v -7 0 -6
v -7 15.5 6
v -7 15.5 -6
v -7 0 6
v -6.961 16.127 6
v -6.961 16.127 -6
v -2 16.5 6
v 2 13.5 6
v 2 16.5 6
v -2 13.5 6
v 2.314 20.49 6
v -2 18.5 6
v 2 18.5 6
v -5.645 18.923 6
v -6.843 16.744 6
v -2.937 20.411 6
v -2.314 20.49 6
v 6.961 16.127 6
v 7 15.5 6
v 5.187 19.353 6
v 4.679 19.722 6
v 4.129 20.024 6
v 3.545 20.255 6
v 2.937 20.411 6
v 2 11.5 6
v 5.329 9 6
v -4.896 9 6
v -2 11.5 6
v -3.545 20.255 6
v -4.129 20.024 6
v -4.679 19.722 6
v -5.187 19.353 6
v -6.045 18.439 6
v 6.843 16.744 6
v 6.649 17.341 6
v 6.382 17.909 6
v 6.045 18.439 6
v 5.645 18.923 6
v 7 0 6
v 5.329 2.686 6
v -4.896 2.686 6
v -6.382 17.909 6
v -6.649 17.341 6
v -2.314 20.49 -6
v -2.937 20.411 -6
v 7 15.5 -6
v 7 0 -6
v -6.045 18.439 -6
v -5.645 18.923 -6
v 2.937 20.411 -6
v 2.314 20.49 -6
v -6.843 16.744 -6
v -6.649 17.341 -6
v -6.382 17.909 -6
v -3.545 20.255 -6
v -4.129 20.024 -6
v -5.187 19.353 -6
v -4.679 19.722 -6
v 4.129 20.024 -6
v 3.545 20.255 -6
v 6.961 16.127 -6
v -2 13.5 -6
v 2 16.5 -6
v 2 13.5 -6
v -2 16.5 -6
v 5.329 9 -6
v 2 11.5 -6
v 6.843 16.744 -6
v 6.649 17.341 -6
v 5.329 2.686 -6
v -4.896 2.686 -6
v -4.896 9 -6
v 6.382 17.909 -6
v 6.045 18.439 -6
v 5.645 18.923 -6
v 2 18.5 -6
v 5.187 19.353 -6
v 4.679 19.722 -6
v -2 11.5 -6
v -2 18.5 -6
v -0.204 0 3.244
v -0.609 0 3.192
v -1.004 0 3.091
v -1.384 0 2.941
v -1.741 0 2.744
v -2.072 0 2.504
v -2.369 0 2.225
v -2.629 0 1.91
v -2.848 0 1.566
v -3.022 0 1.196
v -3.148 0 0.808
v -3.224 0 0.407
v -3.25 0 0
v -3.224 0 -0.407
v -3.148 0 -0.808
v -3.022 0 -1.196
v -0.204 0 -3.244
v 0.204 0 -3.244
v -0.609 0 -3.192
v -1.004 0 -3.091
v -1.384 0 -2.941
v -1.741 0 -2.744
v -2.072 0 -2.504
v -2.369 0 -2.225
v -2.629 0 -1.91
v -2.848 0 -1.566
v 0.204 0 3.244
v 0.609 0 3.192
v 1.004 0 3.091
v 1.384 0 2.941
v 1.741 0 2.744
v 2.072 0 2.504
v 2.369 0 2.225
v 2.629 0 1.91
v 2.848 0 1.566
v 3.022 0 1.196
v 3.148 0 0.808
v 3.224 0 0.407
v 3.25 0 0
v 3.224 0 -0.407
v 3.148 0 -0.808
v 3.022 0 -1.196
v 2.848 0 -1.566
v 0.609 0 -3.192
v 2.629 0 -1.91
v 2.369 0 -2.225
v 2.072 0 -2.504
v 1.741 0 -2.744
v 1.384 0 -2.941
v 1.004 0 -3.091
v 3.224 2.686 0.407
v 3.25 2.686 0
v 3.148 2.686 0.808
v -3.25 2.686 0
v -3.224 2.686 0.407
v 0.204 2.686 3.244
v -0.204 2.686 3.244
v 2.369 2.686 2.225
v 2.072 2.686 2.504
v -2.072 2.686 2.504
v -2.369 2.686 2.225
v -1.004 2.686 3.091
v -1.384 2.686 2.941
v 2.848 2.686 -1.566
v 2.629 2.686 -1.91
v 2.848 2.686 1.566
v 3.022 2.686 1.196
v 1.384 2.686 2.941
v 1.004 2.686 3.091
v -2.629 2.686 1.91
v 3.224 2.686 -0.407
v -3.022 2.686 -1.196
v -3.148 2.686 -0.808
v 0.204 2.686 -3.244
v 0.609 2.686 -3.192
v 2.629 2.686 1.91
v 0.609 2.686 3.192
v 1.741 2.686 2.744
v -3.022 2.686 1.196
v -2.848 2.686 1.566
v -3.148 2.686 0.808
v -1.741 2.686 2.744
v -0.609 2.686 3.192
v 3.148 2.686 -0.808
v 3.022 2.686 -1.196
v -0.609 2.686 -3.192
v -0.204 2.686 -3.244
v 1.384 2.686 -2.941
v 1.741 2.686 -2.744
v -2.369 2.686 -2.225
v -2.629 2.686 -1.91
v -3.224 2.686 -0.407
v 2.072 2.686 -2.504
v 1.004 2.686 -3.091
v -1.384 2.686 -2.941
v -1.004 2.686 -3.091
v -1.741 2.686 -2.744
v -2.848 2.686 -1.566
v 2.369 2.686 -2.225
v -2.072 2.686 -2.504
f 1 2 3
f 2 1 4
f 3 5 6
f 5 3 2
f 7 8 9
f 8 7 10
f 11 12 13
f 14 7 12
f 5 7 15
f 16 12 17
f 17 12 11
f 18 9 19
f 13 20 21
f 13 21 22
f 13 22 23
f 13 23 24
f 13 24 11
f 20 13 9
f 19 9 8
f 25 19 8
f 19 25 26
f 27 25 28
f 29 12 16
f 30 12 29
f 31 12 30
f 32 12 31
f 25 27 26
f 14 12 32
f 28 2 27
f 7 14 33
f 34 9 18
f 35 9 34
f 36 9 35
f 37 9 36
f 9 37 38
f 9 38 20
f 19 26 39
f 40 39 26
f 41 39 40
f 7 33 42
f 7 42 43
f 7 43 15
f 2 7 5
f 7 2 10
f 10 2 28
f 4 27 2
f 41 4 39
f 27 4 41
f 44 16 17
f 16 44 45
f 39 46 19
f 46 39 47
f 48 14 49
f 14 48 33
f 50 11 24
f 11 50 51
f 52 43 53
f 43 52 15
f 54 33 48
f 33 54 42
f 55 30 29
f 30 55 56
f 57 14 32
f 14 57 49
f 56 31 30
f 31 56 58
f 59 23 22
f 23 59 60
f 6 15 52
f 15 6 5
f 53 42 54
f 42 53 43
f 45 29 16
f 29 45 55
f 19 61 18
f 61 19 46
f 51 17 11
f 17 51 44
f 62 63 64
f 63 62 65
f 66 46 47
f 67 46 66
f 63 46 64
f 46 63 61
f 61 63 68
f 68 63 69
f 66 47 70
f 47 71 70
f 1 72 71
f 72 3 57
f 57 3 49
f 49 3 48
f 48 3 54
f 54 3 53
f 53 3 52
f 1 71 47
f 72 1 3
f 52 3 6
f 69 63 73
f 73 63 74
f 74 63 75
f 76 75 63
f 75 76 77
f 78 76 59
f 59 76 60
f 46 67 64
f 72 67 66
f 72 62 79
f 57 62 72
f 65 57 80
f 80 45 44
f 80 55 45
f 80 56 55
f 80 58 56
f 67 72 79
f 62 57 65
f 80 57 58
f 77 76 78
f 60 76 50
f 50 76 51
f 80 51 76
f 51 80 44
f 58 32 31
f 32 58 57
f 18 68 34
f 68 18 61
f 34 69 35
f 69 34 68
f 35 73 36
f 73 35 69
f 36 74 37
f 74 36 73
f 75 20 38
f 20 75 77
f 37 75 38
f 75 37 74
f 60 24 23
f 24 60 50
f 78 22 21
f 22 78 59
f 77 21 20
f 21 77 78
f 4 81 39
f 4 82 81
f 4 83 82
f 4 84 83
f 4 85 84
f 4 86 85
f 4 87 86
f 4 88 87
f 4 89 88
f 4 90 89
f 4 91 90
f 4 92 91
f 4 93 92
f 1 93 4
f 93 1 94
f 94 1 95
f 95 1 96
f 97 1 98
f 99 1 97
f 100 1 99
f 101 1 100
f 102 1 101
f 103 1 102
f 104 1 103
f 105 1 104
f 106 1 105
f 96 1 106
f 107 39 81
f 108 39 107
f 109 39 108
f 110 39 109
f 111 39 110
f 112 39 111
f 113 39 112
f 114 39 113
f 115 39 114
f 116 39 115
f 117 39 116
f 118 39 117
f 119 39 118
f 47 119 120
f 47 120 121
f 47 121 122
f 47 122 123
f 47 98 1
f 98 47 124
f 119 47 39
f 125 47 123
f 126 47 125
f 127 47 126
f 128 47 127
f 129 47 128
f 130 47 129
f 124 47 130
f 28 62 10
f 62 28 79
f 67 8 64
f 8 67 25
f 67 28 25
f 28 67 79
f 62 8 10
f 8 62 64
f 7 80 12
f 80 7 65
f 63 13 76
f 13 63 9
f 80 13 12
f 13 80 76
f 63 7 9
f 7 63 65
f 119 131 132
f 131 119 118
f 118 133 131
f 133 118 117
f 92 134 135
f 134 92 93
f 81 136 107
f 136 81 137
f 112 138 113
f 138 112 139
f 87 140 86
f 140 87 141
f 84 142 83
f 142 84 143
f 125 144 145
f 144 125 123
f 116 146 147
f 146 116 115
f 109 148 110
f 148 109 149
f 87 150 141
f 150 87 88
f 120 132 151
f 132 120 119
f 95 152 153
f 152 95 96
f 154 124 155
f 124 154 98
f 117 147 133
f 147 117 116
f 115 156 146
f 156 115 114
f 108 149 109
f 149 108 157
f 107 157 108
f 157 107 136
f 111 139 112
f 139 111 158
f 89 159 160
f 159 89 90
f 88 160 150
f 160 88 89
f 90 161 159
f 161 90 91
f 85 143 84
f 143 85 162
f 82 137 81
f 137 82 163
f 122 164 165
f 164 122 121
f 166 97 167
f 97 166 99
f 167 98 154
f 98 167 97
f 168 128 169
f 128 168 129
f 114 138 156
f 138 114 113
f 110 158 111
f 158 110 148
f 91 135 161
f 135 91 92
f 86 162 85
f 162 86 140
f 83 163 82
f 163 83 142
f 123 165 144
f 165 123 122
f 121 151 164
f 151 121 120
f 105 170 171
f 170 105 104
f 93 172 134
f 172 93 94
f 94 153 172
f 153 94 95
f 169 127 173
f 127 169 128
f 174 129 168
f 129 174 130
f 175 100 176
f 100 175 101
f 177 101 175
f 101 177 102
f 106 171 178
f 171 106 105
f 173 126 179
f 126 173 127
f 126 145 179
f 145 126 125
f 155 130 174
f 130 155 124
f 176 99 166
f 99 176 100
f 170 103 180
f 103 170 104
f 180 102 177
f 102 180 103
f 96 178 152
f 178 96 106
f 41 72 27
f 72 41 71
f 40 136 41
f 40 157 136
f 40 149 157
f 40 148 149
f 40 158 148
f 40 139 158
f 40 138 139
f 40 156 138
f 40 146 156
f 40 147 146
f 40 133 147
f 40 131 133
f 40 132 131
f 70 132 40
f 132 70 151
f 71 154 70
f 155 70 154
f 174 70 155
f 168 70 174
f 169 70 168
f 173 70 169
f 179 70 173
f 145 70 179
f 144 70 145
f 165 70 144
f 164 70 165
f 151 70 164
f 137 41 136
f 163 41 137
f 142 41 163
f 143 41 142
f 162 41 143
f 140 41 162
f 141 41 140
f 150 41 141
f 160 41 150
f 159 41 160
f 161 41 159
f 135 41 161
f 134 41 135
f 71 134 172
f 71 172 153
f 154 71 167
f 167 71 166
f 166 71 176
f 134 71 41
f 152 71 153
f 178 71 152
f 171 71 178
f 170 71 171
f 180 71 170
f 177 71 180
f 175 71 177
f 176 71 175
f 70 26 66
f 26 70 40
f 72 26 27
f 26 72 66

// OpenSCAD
$fn = 50;


difference() {
	union() {
		translate(v = [0, 13.5000000000, -6.0000000000]) {
			rotate(a = [0, 0, 0]) {
				hull() {
					translate(v = [-2.0000000000, 2.0000000000, 0]) {
						rotate(a = [0, 0, 0]) {
							translate(v = [0, 0, 0]) {
								rotate(a = [0, 0, 0]) {
									cylinder(h = 12, r = 5);
								}
							}
						}
					}
					translate(v = [2.0000000000, 2.0000000000, 0]) {
						rotate(a = [0, 0, 0]) {
							translate(v = [0, 0, 0]) {
								rotate(a = [0, 0, 0]) {
									cylinder(h = 12, r = 5);
								}
							}
						}
					}
					translate(v = [-2.0000000000, -2.0000000000, 0]) {
						rotate(a = [0, 0, 0]) {
							translate(v = [0, 0, 0]) {
								rotate(a = [0, 0, 0]) {
									cylinder(h = 12, r = 5);
								}
							}
						}
					}
					translate(v = [2.0000000000, -2.0000000000, 0]) {
						rotate(a = [0, 0, 0]) {
							translate(v = [0, 0, 0]) {
								rotate(a = [0, 0, 0]) {
									cylinder(h = 12, r = 5);
								}
							}
						}
					}
				}
			}
		}
		translate(v = [-7.0000000000, 0, -6.0000000000]) {
			rotate(a = [0, 0, 0]) {
				cube(size = [14, 13.5000000000, 12]);
			}
		}
	}
	union() {
		translate(v = [-2.0000000000, 11.5000000000, -50]) {
			rotate(a = [0, 0, 0]) {
				cube(size = [4, 2, 100]);
			}
		}
		translate(v = [-2.0000000000, 16.5000000000, -50]) {
			rotate(a = [0, 0, 0]) {
				cube(size = [4, 2, 100]);
			}
		}
		translate(v = [0.0000000000, 8, 0]) {
			rotate(a = [90, 0, 0]) {
				cylinder(h = 8, r = 3.2500000000);
			}
		}
		translate(v = [-4.8960138648, 9, -50]) {
			rotate(a = [90, 0, 0]) {
				cube(size = [10.2253032929, 100, 6.3142500000]);
			}
		}
	}
}
